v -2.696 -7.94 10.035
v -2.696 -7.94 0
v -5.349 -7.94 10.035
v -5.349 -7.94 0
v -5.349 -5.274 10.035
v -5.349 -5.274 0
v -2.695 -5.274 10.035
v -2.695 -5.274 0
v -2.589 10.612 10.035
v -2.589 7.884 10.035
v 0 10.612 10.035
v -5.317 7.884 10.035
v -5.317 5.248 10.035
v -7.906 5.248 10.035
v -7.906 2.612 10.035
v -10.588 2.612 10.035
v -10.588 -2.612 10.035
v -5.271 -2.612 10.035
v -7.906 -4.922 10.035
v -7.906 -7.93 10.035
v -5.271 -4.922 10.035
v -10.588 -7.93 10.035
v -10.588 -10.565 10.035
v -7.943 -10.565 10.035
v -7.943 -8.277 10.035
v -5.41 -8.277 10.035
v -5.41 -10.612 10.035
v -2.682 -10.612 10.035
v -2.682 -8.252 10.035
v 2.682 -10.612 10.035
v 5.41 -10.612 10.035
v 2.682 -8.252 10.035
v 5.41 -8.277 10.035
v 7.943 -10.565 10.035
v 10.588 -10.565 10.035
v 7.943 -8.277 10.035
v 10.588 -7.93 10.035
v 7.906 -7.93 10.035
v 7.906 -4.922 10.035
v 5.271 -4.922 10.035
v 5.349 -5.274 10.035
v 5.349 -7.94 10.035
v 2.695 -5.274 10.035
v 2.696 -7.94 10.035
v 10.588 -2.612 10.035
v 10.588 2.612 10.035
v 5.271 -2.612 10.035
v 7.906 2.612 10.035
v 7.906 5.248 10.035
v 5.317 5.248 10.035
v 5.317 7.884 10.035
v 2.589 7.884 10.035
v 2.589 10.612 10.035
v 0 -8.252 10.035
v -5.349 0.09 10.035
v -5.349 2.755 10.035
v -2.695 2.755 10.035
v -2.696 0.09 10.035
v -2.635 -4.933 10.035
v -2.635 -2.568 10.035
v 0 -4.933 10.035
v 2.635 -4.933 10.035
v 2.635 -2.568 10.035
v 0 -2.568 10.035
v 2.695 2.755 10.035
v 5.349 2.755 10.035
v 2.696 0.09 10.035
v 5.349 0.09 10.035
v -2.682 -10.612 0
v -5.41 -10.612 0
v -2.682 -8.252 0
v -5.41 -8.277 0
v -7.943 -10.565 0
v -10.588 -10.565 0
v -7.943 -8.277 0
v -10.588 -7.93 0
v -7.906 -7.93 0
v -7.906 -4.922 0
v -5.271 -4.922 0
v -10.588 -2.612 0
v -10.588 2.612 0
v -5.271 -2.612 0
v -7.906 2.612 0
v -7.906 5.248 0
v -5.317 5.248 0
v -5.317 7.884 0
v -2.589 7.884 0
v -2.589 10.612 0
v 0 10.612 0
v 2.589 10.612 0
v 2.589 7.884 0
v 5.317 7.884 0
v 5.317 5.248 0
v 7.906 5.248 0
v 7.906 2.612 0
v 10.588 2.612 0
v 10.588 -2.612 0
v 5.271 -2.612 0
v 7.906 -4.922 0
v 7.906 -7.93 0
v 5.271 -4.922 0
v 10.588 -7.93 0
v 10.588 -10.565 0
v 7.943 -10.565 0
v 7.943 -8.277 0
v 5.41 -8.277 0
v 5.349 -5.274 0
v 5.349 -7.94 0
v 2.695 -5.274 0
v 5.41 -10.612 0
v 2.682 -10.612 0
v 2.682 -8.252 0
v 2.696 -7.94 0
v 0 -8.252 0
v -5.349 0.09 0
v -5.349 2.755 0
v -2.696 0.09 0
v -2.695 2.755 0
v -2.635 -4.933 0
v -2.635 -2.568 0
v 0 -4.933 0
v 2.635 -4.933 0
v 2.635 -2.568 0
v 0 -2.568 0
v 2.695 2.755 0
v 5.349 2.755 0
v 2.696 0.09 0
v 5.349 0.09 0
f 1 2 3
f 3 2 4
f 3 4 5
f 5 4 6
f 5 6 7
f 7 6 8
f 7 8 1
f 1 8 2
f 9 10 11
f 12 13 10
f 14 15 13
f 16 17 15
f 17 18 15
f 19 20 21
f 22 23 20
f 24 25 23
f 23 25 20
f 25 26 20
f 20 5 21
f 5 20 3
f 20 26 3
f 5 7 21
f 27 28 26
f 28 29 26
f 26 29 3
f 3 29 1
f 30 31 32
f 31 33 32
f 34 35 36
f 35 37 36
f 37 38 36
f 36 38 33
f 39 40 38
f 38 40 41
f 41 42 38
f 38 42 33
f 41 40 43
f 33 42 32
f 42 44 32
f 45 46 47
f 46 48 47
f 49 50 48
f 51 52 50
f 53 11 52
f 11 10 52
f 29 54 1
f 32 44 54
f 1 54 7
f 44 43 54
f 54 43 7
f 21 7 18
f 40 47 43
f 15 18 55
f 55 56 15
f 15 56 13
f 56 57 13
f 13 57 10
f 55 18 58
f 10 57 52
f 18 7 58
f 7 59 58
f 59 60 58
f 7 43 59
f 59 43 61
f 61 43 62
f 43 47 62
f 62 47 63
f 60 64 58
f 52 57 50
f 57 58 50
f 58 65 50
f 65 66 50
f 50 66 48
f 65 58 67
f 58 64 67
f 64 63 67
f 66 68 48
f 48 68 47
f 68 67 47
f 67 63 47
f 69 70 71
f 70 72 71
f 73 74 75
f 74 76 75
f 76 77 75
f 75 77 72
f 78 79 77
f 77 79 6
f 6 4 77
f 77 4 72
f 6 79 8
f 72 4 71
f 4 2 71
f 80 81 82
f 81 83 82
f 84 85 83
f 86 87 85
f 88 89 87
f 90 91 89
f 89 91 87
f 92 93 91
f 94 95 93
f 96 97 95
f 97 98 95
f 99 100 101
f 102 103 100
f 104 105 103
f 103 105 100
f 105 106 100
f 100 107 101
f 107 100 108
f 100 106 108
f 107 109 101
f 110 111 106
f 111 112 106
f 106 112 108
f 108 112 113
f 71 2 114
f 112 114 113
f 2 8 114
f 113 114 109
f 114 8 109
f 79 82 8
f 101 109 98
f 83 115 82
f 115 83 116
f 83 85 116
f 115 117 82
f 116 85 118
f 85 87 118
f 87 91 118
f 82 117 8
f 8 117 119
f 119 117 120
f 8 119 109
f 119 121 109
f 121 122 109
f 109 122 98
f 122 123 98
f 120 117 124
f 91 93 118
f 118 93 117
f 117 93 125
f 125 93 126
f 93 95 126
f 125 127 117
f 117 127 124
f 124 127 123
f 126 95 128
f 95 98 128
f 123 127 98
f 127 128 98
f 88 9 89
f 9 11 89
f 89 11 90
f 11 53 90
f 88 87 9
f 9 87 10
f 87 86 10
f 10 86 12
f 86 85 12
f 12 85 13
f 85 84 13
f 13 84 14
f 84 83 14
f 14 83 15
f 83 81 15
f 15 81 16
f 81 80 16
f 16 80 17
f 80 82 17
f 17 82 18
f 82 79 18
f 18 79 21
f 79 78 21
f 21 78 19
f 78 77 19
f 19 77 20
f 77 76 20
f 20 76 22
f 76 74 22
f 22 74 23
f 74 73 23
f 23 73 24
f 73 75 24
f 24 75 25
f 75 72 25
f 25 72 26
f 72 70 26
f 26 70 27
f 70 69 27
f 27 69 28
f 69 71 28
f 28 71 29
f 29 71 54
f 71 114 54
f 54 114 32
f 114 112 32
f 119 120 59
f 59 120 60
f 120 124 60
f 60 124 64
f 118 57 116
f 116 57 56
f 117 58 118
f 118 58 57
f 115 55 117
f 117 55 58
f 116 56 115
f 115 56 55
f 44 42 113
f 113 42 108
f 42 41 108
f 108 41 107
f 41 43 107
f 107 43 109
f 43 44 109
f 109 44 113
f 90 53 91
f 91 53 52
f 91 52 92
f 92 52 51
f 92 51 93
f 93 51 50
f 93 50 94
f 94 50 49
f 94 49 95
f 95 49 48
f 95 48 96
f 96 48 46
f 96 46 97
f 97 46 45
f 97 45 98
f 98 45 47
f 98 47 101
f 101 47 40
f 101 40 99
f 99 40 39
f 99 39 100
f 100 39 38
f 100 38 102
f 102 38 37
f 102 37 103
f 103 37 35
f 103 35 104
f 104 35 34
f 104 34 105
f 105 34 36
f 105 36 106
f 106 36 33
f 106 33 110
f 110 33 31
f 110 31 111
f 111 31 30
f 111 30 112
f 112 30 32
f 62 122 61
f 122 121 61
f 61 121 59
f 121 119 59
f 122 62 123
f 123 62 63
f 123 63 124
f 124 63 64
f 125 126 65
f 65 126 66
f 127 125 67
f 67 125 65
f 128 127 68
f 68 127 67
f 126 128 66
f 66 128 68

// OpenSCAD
module invaders_v2_1b()
{
	polyhedron(
		points=[
			[-2.695971, -7.939871, 10.03545],
			[-2.695969, -7.939871, 1.037121e-05],
			[-5.348595, -7.939871, 10.03545],
			[-5.348595, -7.939871, 10.03545],
			[-2.695969, -7.939871, 1.037121e-05],
			[-5.348595, -7.939871, 1.037121e-05],
			[-5.348595, -7.939871, 10.03545],
			[-5.348595, -7.939871, 1.037121e-05],
			[-5.348595, -5.274351, 10.03545],
			[-5.348595, -5.274351, 10.03545],
			[-5.348595, -7.939871, 1.037121e-05],
			[-5.348595, -5.274351, 1.037121e-05],
			[-5.348595, -5.274351, 10.03545],
			[-5.348595, -5.274351, 1.037121e-05],
			[-2.694871, -5.274351, 10.03545],
			[-2.694871, -5.274351, 10.03545],
			[-5.348595, -5.274351, 1.037121e-05],
			[-2.694869, -5.274351, 6.661338e-16],
			[-2.694871, -5.274351, 10.03545],
			[-2.694869, -5.274351, 6.661338e-16],
			[-2.695971, -7.939871, 10.03545],
			[-2.695971, -7.939871, 10.03545],
			[-2.694869, -5.274351, 6.661338e-16],
			[-2.695969, -7.939871, 1.037121e-05],
			[-2.58908, 10.61154, 10.03545],
			[-2.58908, 7.883512, 10.03545],
			[-1.66893e-06, 10.61154, 10.03545],
			[-5.3171, 7.883512, 10.03545],
			[-5.3171, 5.247969, 10.03545],
			[-2.58908, 7.883512, 10.03545],
			[-7.906407, 5.247969, 10.03545],
			[-7.906407, 2.612425, 10.03545],
			[-5.3171, 5.247969, 10.03545],
			[-10.58819, 2.612425, 10.03545],
			[-10.58819, -2.612421, 10.03545],
			[-7.906407, 2.612425, 10.03545],
			[-10.58819, -2.612421, 10.03545],
			[-5.270863, -2.612421, 10.03545],
			[-7.906407, 2.612425, 10.03545],
			[-7.906407, -4.921896, 10.03545],
			[-7.906407, -7.929758, 10.03545],
			[-5.270863, -4.921896, 10.03545],
			[-10.58819, -7.929758, 10.03545],
			[-10.58819, -10.5653, 10.03545],
			[-7.906407, -7.929758, 10.03545],
			[-7.943222, -10.5653, 10.03545],
			[-7.943222, -8.276869, 10.03545],
			[-10.58819, -10.5653, 10.03545],
			[-10.58819, -10.5653, 10.03545],
			[-7.943222, -8.276869, 10.03545],
			[-7.906407, -7.929758, 10.03545],
			[-7.943222, -8.276869, 10.03545],
			[-5.409575, -8.276869, 10.03545],
			[-7.906407, -7.929758, 10.03545],
			[-7.906407, -7.929758, 10.03545],
			[-5.348595, -5.274351, 10.03545],
			[-5.270863, -4.921896, 10.03545],
			[-5.348595, -5.274351, 10.03545],
			[-7.906407, -7.929758, 10.03545],
			[-5.348595, -7.939871, 10.03545],
			[-7.906407, -7.929758, 10.03545],
			[-5.409575, -8.276869, 10.03545],
			[-5.348595, -7.939871, 10.03545],
			[-5.348595, -5.274351, 10.03545],
			[-2.694871, -5.274351, 10.03545],
			[-5.270863, -4.921896, 10.03545],
			[-5.409575, -10.61154, 10.03545],
			[-2.681557, -10.61154, 10.03545],
			[-5.409575, -8.276869, 10.03545],
			[-2.681557, -10.61154, 10.03545],
			[-2.681557, -8.251883, 10.03545],
			[-5.409575, -8.276869, 10.03545],
			[-5.409575, -8.276869, 10.03545],
			[-2.681557, -8.251883, 10.03545],
			[-5.348595, -7.939871, 10.03545],
			[-5.348595, -7.939871, 10.03545],
			[-2.681557, -8.251883, 10.03545],
			[-2.695971, -7.939871, 10.03545],
			[2.681553, -10.61154, 10.03545],
			[5.409574, -10.61154, 10.03546],
			[2.681553, -8.251883, 10.03545],
			[5.409574, -10.61154, 10.03546],
			[5.409574, -8.276869, 10.03546],
			[2.681553, -8.251883, 10.03545],
			[7.943221, -10.5653, 10.03546],
			[10.58819, -10.5653, 10.03546],
			[7.943221, -8.276869, 10.03546],
			[10.58819, -10.5653, 10.03546],
			[10.58819, -7.929758, 10.03546],
			[7.943221, -8.276869, 10.03546],
			[10.58819, -7.929758, 10.03546],
			[7.906405, -7.929758, 10.03546],
			[7.943221, -8.276869, 10.03546],
			[7.943221, -8.276869, 10.03546],
			[7.906405, -7.929758, 10.03546],
			[5.409574, -8.276869, 10.03546],
			[7.906405, -4.921896, 10.03546],
			[5.270862, -4.921896, 10.03546],
			[7.906405, -7.929758, 10.03546],
			[7.906405, -7.929758, 10.03546],
			[5.270862, -4.921896, 10.03546],
			[5.348594, -5.274351, 10.03546],
			[5.348594, -5.274351, 10.03546],
			[5.348594, -7.939871, 10.03546],
			[7.906405, -7.929758, 10.03546],
			[7.906405, -7.929758, 10.03546],
			[5.348594, -7.939871, 10.03546],
			[5.409574, -8.276869, 10.03546],
			[5.348594, -5.274351, 10.03546],
			[5.270862, -4.921896, 10.03546],
			[2.694868, -5.274351, 10.03545],
			[5.409574, -8.276869, 10.03546],
			[5.348594, -7.939871, 10.03546],
			[2.681553, -8.251883, 10.03545],
			[5.348594, -7.939871, 10.03546],
			[2.695968, -7.939871, 10.03545],
			[2.681553, -8.251883, 10.03545],
			[10.58819, -2.612421, 10.03546],
			[10.58819, 2.612425, 10.03546],
			[5.270862, -2.612421, 10.03546],
			[10.58819, 2.612425, 10.03546],
			[7.906405, 2.612425, 10.03546],
			[5.270862, -2.612421, 10.03546],
			[7.906405, 5.247969, 10.03546],
			[5.317099, 5.247969, 10.03546],
			[7.906405, 2.612425, 10.03546],
			[5.317099, 7.883512, 10.03546],
			[2.58908, 7.883512, 10.03545],
			[5.317099, 5.247969, 10.03546],
			[2.58908, 10.61154, 10.03545],
			[-1.66893e-06, 10.61154, 10.03545],
			[2.58908, 7.883512, 10.03545],
			[-1.66893e-06, 10.61154, 10.03545],
			[-2.58908, 7.883512, 10.03545],
			[2.58908, 7.883512, 10.03545],
			[-2.681557, -8.251883, 10.03545],
			[-1.66893e-06, -8.251883, 10.03545],
			[-2.695971, -7.939871, 10.03545],
			[2.681553, -8.251883, 10.03545],
			[2.695968, -7.939871, 10.03545],
			[-1.66893e-06, -8.251883, 10.03545],
			[-2.695971, -7.939871, 10.03545],
			[-1.66893e-06, -8.251883, 10.03545],
			[-2.694871, -5.274351, 10.03545],
			[2.695968, -7.939871, 10.03545],
			[2.694868, -5.274351, 10.03545],
			[-1.66893e-06, -8.251883, 10.03545],
			[-1.66893e-06, -8.251883, 10.03545],
			[2.694868, -5.274351, 10.03545],
			[-2.694871, -5.274351, 10.03545],
			[-5.270863, -4.921896, 10.03545],
			[-2.694871, -5.274351, 10.03545],
			[-5.270863, -2.612421, 10.03545],
			[5.270862, -4.921896, 10.03546],
			[5.270862, -2.612421, 10.03546],
			[2.694868, -5.274351, 10.03545],
			[-7.906407, 2.612425, 10.03545],
			[-5.270863, -2.612421, 10.03545],
			[-5.348595, 0.08991051, 10.03545],
			[-5.348595, 0.08991051, 10.03545],
			[-5.348595, 2.75543, 10.03545],
			[-7.906407, 2.612425, 10.03545],
			[-7.906407, 2.612425, 10.03545],
			[-5.348595, 2.75543, 10.03545],
			[-5.3171, 5.247969, 10.03545],
			[-5.348595, 2.75543, 10.03545],
			[-2.694871, 2.75543, 10.03545],
			[-5.3171, 5.247969, 10.03545],
			[-5.3171, 5.247969, 10.03545],
			[-2.694871, 2.75543, 10.03545],
			[-2.58908, 7.883512, 10.03545],
			[-5.348595, 0.08991051, 10.03545],
			[-5.270863, -2.612421, 10.03545],
			[-2.695971, 0.08991051, 10.03545],
			[-2.58908, 7.883512, 10.03545],
			[-2.694871, 2.75543, 10.03545],
			[2.58908, 7.883512, 10.03545],
			[-5.270863, -2.612421, 10.03545],
			[-2.694871, -5.274351, 10.03545],
			[-2.695971, 0.08991051, 10.03545],
			[-2.694871, -5.274351, 10.03545],
			[-2.63532, -4.932856, 10.03545],
			[-2.695971, 0.08991051, 10.03545],
			[-2.63532, -4.932856, 10.03545],
			[-2.63532, -2.56772, 10.03545],
			[-2.695971, 0.08991051, 10.03545],
			[-2.694871, -5.274351, 10.03545],
			[2.694868, -5.274351, 10.03545],
			[-2.63532, -4.932856, 10.03545],
			[-2.63532, -4.932856, 10.03545],
			[2.694868, -5.274351, 10.03545],
			[-1.66893e-06, -4.932856, 10.03545],
			[-1.66893e-06, -4.932856, 10.03545],
			[2.694868, -5.274351, 10.03545],
			[2.635317, -4.932856, 10.03545],
			[2.694868, -5.274351, 10.03545],
			[5.270862, -2.612421, 10.03546],
			[2.635317, -4.932856, 10.03545],
			[2.635317, -4.932856, 10.03545],
			[5.270862, -2.612421, 10.03546],
			[2.635317, -2.56772, 10.03545],
			[-2.63532, -2.56772, 10.03545],
			[-1.66893e-06, -2.56772, 10.03545],
			[-2.695971, 0.08991051, 10.03545],
			[2.58908, 7.883512, 10.03545],
			[-2.694871, 2.75543, 10.03545],
			[5.317099, 5.247969, 10.03546],
			[-2.694871, 2.75543, 10.03545],
			[-2.695971, 0.08991051, 10.03545],
			[5.317099, 5.247969, 10.03546],
			[-2.695971, 0.08991051, 10.03545],
			[2.694868, 2.75543, 10.03545],
			[5.317099, 5.247969, 10.03546],
			[2.694868, 2.75543, 10.03545],
			[5.348594, 2.75543, 10.03546],
			[5.317099, 5.247969, 10.03546],
			[5.317099, 5.247969, 10.03546],
			[5.348594, 2.75543, 10.03546],
			[7.906405, 2.612425, 10.03546],
			[2.694868, 2.75543, 10.03545],
			[-2.695971, 0.08991051, 10.03545],
			[2.695968, 0.08991051, 10.03545],
			[-2.695971, 0.08991051, 10.03545],
			[-1.66893e-06, -2.56772, 10.03545],
			[2.695968, 0.08991051, 10.03545],
			[-1.66893e-06, -2.56772, 10.03545],
			[2.635317, -2.56772, 10.03545],
			[2.695968, 0.08991051, 10.03545],
			[5.348594, 2.75543, 10.03546],
			[5.348594, 0.08991051, 10.03546],
			[7.906405, 2.612425, 10.03546],
			[7.906405, 2.612425, 10.03546],
			[5.348594, 0.08991051, 10.03546],
			[5.270862, -2.612421, 10.03546],
			[5.348594, 0.08991051, 10.03546],
			[2.695968, 0.08991051, 10.03545],
			[5.270862, -2.612421, 10.03546],
			[2.695968, 0.08991051, 10.03545],
			[2.635317, -2.56772, 10.03545],
			[5.270862, -2.612421, 10.03546],
			[-2.681555, -10.61154, 5.125999e-06],
			[-5.409575, -10.61154, 5.125999e-06],
			[-2.681555, -8.251883, 5.125999e-06],
			[-5.409575, -10.61154, 5.125999e-06],
			[-5.409575, -8.276869, 5.125999e-06],
			[-2.681555, -8.251883, 5.125999e-06],
			[-7.943222, -10.5653, 5.125999e-06],
			[-10.58819, -10.5653, 5.125999e-06],
			[-7.943222, -8.276869, 5.125999e-06],
			[-10.58819, -10.5653, 5.125999e-06],
			[-10.58819, -7.929758, 5.125999e-06],
			[-7.943222, -8.276869, 5.125999e-06],
			[-10.58819, -7.929758, 5.125999e-06],
			[-7.906407, -7.929758, 5.125999e-06],
			[-7.943222, -8.276869, 5.125999e-06],
			[-7.943222, -8.276869, 5.125999e-06],
			[-7.906407, -7.929758, 5.125999e-06],
			[-5.409575, -8.276869, 5.125999e-06],
			[-7.906407, -4.921896, 5.125999e-06],
			[-5.270863, -4.921896, 5.125999e-06],
			[-7.906407, -7.929758, 5.125999e-06],
			[-7.906407, -7.929758, 5.125999e-06],
			[-5.270863, -4.921896, 5.125999e-06],
			[-5.348595, -5.274351, 1.037121e-05],
			[-5.348595, -5.274351, 1.037121e-05],
			[-5.348595, -7.939871, 1.037121e-05],
			[-7.906407, -7.929758, 5.125999e-06],
			[-7.906407, -7.929758, 5.125999e-06],
			[-5.348595, -7.939871, 1.037121e-05],
			[-5.409575, -8.276869, 5.125999e-06],
			[-5.348595, -5.274351, 1.037121e-05],
			[-5.270863, -4.921896, 5.125999e-06],
			[-2.694869, -5.274351, 6.661338e-16],
			[-5.409575, -8.276869, 5.125999e-06],
			[-5.348595, -7.939871, 1.037121e-05],
			[-2.681555, -8.251883, 5.125999e-06],
			[-5.348595, -7.939871, 1.037121e-05],
			[-2.695969, -7.939871, 1.037121e-05],
			[-2.681555, -8.251883, 5.125999e-06],
			[-10.58819, -2.612421, 5.125999e-06],
			[-10.58819, 2.612425, 5.125999e-06],
			[-5.270863, -2.612421, 5.125999e-06],
			[-10.58819, 2.612425, 5.125999e-06],
			[-7.906407, 2.612425, 5.125999e-06],
			[-5.270863, -2.612421, 5.125999e-06],
			[-7.906407, 5.247969, 5.125999e-06],
			[-5.3171, 5.247969, 5.125999e-06],
			[-7.906407, 2.612425, 5.125999e-06],
			[-5.3171, 7.883512, 5.125999e-06],
			[-2.58908, 7.883512, 5.125999e-06],
			[-5.3171, 5.247969, 5.125999e-06],
			[-2.58908, 10.61154, 5.125999e-06],
			[-1.66893e-06, 10.61154, 5.125999e-06],
			[-2.58908, 7.883512, 5.125999e-06],
			[2.58908, 10.61154, 1.037121e-05],
			[2.58908, 7.883512, 1.037121e-05],
			[-1.66893e-06, 10.61154, 5.125999e-06],
			[-1.66893e-06, 10.61154, 5.125999e-06],
			[2.58908, 7.883512, 1.037121e-05],
			[-2.58908, 7.883512, 5.125999e-06],
			[5.317099, 7.883512, 1.037121e-05],
			[5.317099, 5.247969, 1.037121e-05],
			[2.58908, 7.883512, 1.037121e-05],
			[7.906405, 5.247969, 1.037121e-05],
			[7.906405, 2.612425, 1.037121e-05],
			[5.317099, 5.247969, 1.037121e-05],
			[10.58819, 2.612425, 1.037121e-05],
			[10.58819, -2.612421, 1.037121e-05],
			[7.906405, 2.612425, 1.037121e-05],
			[10.58819, -2.612421, 1.037121e-05],
			[5.270862, -2.612421, 1.037121e-05],
			[7.906405, 2.612425, 1.037121e-05],
			[7.906405, -4.921896, 1.037121e-05],
			[7.906405, -7.929758, 1.037121e-05],
			[5.270862, -4.921896, 1.037121e-05],
			[10.58819, -7.929758, 1.037121e-05],
			[10.58819, -10.5653, 1.037121e-05],
			[7.906405, -7.929758, 1.037121e-05],
			[7.943221, -10.5653, 1.037121e-05],
			[7.943221, -8.276869, 1.037121e-05],
			[10.58819, -10.5653, 1.037121e-05],
			[10.58819, -10.5653, 1.037121e-05],
			[7.943221, -8.276869, 1.037121e-05],
			[7.906405, -7.929758, 1.037121e-05],
			[7.943221, -8.276869, 1.037121e-05],
			[5.409574, -8.276869, 1.037121e-05],
			[7.906405, -7.929758, 1.037121e-05],
			[7.906405, -7.929758, 1.037121e-05],
			[5.348594, -5.274351, 1.549721e-05],
			[5.270862, -4.921896, 1.037121e-05],
			[5.348594, -5.274351, 1.549721e-05],
			[7.906405, -7.929758, 1.037121e-05],
			[5.348594, -7.939871, 1.549721e-05],
			[7.906405, -7.929758, 1.037121e-05],
			[5.409574, -8.276869, 1.037121e-05],
			[5.348594, -7.939871, 1.549721e-05],
			[5.348594, -5.274351, 1.549721e-05],
			[2.694868, -5.274351, 6.661338e-16],
			[5.270862, -4.921896, 1.037121e-05],
			[5.409574, -10.61154, 1.037121e-05],
			[2.681553, -10.61154, 1.037121e-05],
			[5.409574, -8.276869, 1.037121e-05],
			[2.681553, -10.61154, 1.037121e-05],
			[2.681553, -8.251883, 1.037121e-05],
			[5.409574, -8.276869, 1.037121e-05],
			[5.409574, -8.276869, 1.037121e-05],
			[2.681553, -8.251883, 1.037121e-05],
			[5.348594, -7.939871, 1.549721e-05],
			[5.348594, -7.939871, 1.549721e-05],
			[2.681553, -8.251883, 1.037121e-05],
			[2.695968, -7.939871, 1.037121e-05],
			[-2.681555, -8.251883, 5.125999e-06],
			[-2.695969, -7.939871, 1.037121e-05],
			[-1.66893e-06, -8.251883, 5.125999e-06],
			[2.681553, -8.251883, 1.037121e-05],
			[-1.66893e-06, -8.251883, 5.125999e-06],
			[2.695968, -7.939871, 1.037121e-05],
			[-2.695969, -7.939871, 1.037121e-05],
			[-2.694869, -5.274351, 6.661338e-16],
			[-1.66893e-06, -8.251883, 5.125999e-06],
			[2.695968, -7.939871, 1.037121e-05],
			[-1.66893e-06, -8.251883, 5.125999e-06],
			[2.694868, -5.274351, 6.661338e-16],
			[-1.66893e-06, -8.251883, 5.125999e-06],
			[-2.694869, -5.274351, 6.661338e-16],
			[2.694868, -5.274351, 6.661338e-16],
			[-5.270863, -4.921896, 5.125999e-06],
			[-5.270863, -2.612421, 5.125999e-06],
			[-2.694869, -5.274351, 6.661338e-16],
			[5.270862, -4.921896, 1.037121e-05],
			[2.694868, -5.274351, 6.661338e-16],
			[5.270862, -2.612421, 1.037121e-05],
			[-7.906407, 2.612425, 5.125999e-06],
			[-5.348595, 0.08991051, 1.037121e-05],
			[-5.270863, -2.612421, 5.125999e-06],
			[-5.348595, 0.08991051, 1.037121e-05],
			[-7.906407, 2.612425, 5.125999e-06],
			[-5.348595, 2.75543, 1.037121e-05],
			[-7.906407, 2.612425, 5.125999e-06],
			[-5.3171, 5.247969, 5.125999e-06],
			[-5.348595, 2.75543, 1.037121e-05],
			[-5.348595, 0.08991051, 1.037121e-05],
			[-2.695969, 0.08991051, 1.037121e-05],
			[-5.270863, -2.612421, 5.125999e-06],
			[-5.348595, 2.75543, 1.037121e-05],
			[-5.3171, 5.247969, 5.125999e-06],
			[-2.694869, 2.75543, 0.0],
			[-5.3171, 5.247969, 5.125999e-06],
			[-2.58908, 7.883512, 5.125999e-06],
			[-2.694869, 2.75543, 0.0],
			[-2.58908, 7.883512, 5.125999e-06],
			[2.58908, 7.883512, 1.037121e-05],
			[-2.694869, 2.75543, 0.0],
			[-5.270863, -2.612421, 5.125999e-06],
			[-2.695969, 0.08991051, 1.037121e-05],
			[-2.694869, -5.274351, 6.661338e-16],
			[-2.694869, -5.274351, 6.661338e-16],
			[-2.695969, 0.08991051, 1.037121e-05],
			[-2.635319, -4.932856, 5.125999e-06],
			[-2.635319, -4.932856, 5.125999e-06],
			[-2.695969, 0.08991051, 1.037121e-05],
			[-2.635319, -2.56772, 5.125999e-06],
			[-2.694869, -5.274351, 6.661338e-16],
			[-2.635319, -4.932856, 5.125999e-06],
			[2.694868, -5.274351, 6.661338e-16],
			[-2.635319, -4.932856, 5.125999e-06],
			[-1.66893e-06, -4.932856, 5.125999e-06],
			[2.694868, -5.274351, 6.661338e-16],
			[-1.66893e-06, -4.932856, 5.125999e-06],
			[2.635317, -4.932856, 1.037121e-05],
			[2.694868, -5.274351, 6.661338e-16],
			[2.694868, -5.274351, 6.661338e-16],
			[2.635317, -4.932856, 1.037121e-05],
			[5.270862, -2.612421, 1.037121e-05],
			[2.635317, -4.932856, 1.037121e-05],
			[2.635317, -2.56772, 1.037121e-05],
			[5.270862, -2.612421, 1.037121e-05],
			[-2.635319, -2.56772, 5.125999e-06],
			[-2.695969, 0.08991051, 1.037121e-05],
			[-1.66893e-06, -2.56772, 5.125999e-06],
			[2.58908, 7.883512, 1.037121e-05],
			[5.317099, 5.247969, 1.037121e-05],
			[-2.694869, 2.75543, 0.0],
			[-2.694869, 2.75543, 0.0],
			[5.317099, 5.247969, 1.037121e-05],
			[-2.695969, 0.08991051, 1.037121e-05],
			[-2.695969, 0.08991051, 1.037121e-05],
			[5.317099, 5.247969, 1.037121e-05],
			[2.694868, 2.75543, 0.0],
			[2.694868, 2.75543, 0.0],
			[5.317099, 5.247969, 1.037121e-05],
			[5.348594, 2.75543, 1.549721e-05],
			[5.317099, 5.247969, 1.037121e-05],
			[7.906405, 2.612425, 1.037121e-05],
			[5.348594, 2.75543, 1.549721e-05],
			[2.694868, 2.75543, 0.0],
			[2.695968, 0.08991051, 1.037121e-05],
			[-2.695969, 0.08991051, 1.037121e-05],
			[-2.695969, 0.08991051, 1.037121e-05],
			[2.695968, 0.08991051, 1.037121e-05],
			[-1.66893e-06, -2.56772, 5.125999e-06],
			[-1.66893e-06, -2.56772, 5.125999e-06],
			[2.695968, 0.08991051, 1.037121e-05],
			[2.635317, -2.56772, 1.037121e-05],
			[5.348594, 2.75543, 1.549721e-05],
			[7.906405, 2.612425, 1.037121e-05],
			[5.348594, 0.08991051, 1.549721e-05],
			[7.906405, 2.612425, 1.037121e-05],
			[5.270862, -2.612421, 1.037121e-05],
			[5.348594, 0.08991051, 1.549721e-05],
			[2.635317, -2.56772, 1.037121e-05],
			[2.695968, 0.08991051, 1.037121e-05],
			[5.270862, -2.612421, 1.037121e-05],
			[2.695968, 0.08991051, 1.037121e-05],
			[5.348594, 0.08991051, 1.549721e-05],
			[5.270862, -2.612421, 1.037121e-05],
			[-2.58908, 10.61154, 5.125999e-06],
			[-2.58908, 10.61154, 10.03545],
			[-1.66893e-06, 10.61154, 5.125999e-06],
			[-2.58908, 10.61154, 10.03545],
			[-1.66893e-06, 10.61154, 10.03545],
			[-1.66893e-06, 10.61154, 5.125999e-06],
			[-1.66893e-06, 10.61154, 5.125999e-06],
			[-1.66893e-06, 10.61154, 10.03545],
			[2.58908, 10.61154, 1.037121e-05],
			[-1.66893e-06, 10.61154, 10.03545],
			[2.58908, 10.61154, 10.03545],
			[2.58908, 10.61154, 1.037121e-05],
			[-2.58908, 10.61154, 5.125999e-06],
			[-2.58908, 7.883512, 5.125999e-06],
			[-2.58908, 10.61154, 10.03545],
			[-2.58908, 10.61154, 10.03545],
			[-2.58908, 7.883512, 5.125999e-06],
			[-2.58908, 7.883512, 10.03545],
			[-2.58908, 7.883512, 5.125999e-06],
			[-5.3171, 7.883512, 5.125999e-06],
			[-2.58908, 7.883512, 10.03545],
			[-2.58908, 7.883512, 10.03545],
			[-5.3171, 7.883512, 5.125999e-06],
			[-5.3171, 7.883512, 10.03545],
			[-5.3171, 7.883512, 5.125999e-06],
			[-5.3171, 5.247969, 5.125999e-06],
			[-5.3171, 7.883512, 10.03545],
			[-5.3171, 7.883512, 10.03545],
			[-5.3171, 5.247969, 5.125999e-06],
			[-5.3171, 5.247969, 10.03545],
			[-5.3171, 5.247969, 5.125999e-06],
			[-7.906407, 5.247969, 5.125999e-06],
			[-5.3171, 5.247969, 10.03545],
			[-5.3171, 5.247969, 10.03545],
			[-7.906407, 5.247969, 5.125999e-06],
			[-7.906407, 5.247969, 10.03545],
			[-7.906407, 5.247969, 5.125999e-06],
			[-7.906407, 2.612425, 5.125999e-06],
			[-7.906407, 5.247969, 10.03545],
			[-7.906407, 5.247969, 10.03545],
			[-7.906407, 2.612425, 5.125999e-06],
			[-7.906407, 2.612425, 10.03545],
			[-7.906407, 2.612425, 5.125999e-06],
			[-10.58819, 2.612425, 5.125999e-06],
			[-7.906407, 2.612425, 10.03545],
			[-7.906407, 2.612425, 10.03545],
			[-10.58819, 2.612425, 5.125999e-06],
			[-10.58819, 2.612425, 10.03545],
			[-10.58819, 2.612425, 5.125999e-06],
			[-10.58819, -2.612421, 5.125999e-06],
			[-10.58819, 2.612425, 10.03545],
			[-10.58819, 2.612425, 10.03545],
			[-10.58819, -2.612421, 5.125999e-06],
			[-10.58819, -2.612421, 10.03545],
			[-10.58819, -2.612421, 5.125999e-06],
			[-5.270863, -2.612421, 5.125999e-06],
			[-10.58819, -2.612421, 10.03545],
			[-10.58819, -2.612421, 10.03545],
			[-5.270863, -2.612421, 5.125999e-06],
			[-5.270863, -2.612421, 10.03545],
			[-5.270863, -2.612421, 5.125999e-06],
			[-5.270863, -4.921896, 5.125999e-06],
			[-5.270863, -2.612421, 10.03545],
			[-5.270863, -2.612421, 10.03545],
			[-5.270863, -4.921896, 5.125999e-06],
			[-5.270863, -4.921896, 10.03545],
			[-5.270863, -4.921896, 5.125999e-06],
			[-7.906407, -4.921896, 5.125999e-06],
			[-5.270863, -4.921896, 10.03545],
			[-5.270863, -4.921896, 10.03545],
			[-7.906407, -4.921896, 5.125999e-06],
			[-7.906407, -4.921896, 10.03545],
			[-7.906407, -4.921896, 5.125999e-06],
			[-7.906407, -7.929758, 5.125999e-06],
			[-7.906407, -4.921896, 10.03545],
			[-7.906407, -4.921896, 10.03545],
			[-7.906407, -7.929758, 5.125999e-06],
			[-7.906407, -7.929758, 10.03545],
			[-7.906407, -7.929758, 5.125999e-06],
			[-10.58819, -7.929758, 5.125999e-06],
			[-7.906407, -7.929758, 10.03545],
			[-7.906407, -7.929758, 10.03545],
			[-10.58819, -7.929758, 5.125999e-06],
			[-10.58819, -7.929758, 10.03545],
			[-10.58819, -7.929758, 5.125999e-06],
			[-10.58819, -10.5653, 5.125999e-06],
			[-10.58819, -7.929758, 10.03545],
			[-10.58819, -7.929758, 10.03545],
			[-10.58819, -10.5653, 5.125999e-06],
			[-10.58819, -10.5653, 10.03545],
			[-10.58819, -10.5653, 5.125999e-06],
			[-7.943222, -10.5653, 5.125999e-06],
			[-10.58819, -10.5653, 10.03545],
			[-10.58819, -10.5653, 10.03545],
			[-7.943222, -10.5653, 5.125999e-06],
			[-7.943222, -10.5653, 10.03545],
			[-7.943222, -10.5653, 5.125999e-06],
			[-7.943222, -8.276869, 5.125999e-06],
			[-7.943222, -10.5653, 10.03545],
			[-7.943222, -10.5653, 10.03545],
			[-7.943222, -8.276869, 5.125999e-06],
			[-7.943222, -8.276869, 10.03545],
			[-7.943222, -8.276869, 5.125999e-06],
			[-5.409575, -8.276869, 5.125999e-06],
			[-7.943222, -8.276869, 10.03545],
			[-7.943222, -8.276869, 10.03545],
			[-5.409575, -8.276869, 5.125999e-06],
			[-5.409575, -8.276869, 10.03545],
			[-5.409575, -8.276869, 5.125999e-06],
			[-5.409575, -10.61154, 5.125999e-06],
			[-5.409575, -8.276869, 10.03545],
			[-5.409575, -8.276869, 10.03545],
			[-5.409575, -10.61154, 5.125999e-06],
			[-5.409575, -10.61154, 10.03545],
			[-5.409575, -10.61154, 5.125999e-06],
			[-2.681555, -10.61154, 5.125999e-06],
			[-5.409575, -10.61154, 10.03545],
			[-5.409575, -10.61154, 10.03545],
			[-2.681555, -10.61154, 5.125999e-06],
			[-2.681557, -10.61154, 10.03545],
			[-2.681555, -10.61154, 5.125999e-06],
			[-2.681555, -8.251883, 5.125999e-06],
			[-2.681557, -10.61154, 10.03545],
			[-2.681557, -10.61154, 10.03545],
			[-2.681555, -8.251883, 5.125999e-06],
			[-2.681557, -8.251883, 10.03545],
			[-2.681557, -8.251883, 10.03545],
			[-2.681555, -8.251883, 5.125999e-06],
			[-1.66893e-06, -8.251883, 10.03545],
			[-2.681555, -8.251883, 5.125999e-06],
			[-1.66893e-06, -8.251883, 5.125999e-06],
			[-1.66893e-06, -8.251883, 10.03545],
			[-1.66893e-06, -8.251883, 10.03545],
			[-1.66893e-06, -8.251883, 5.125999e-06],
			[2.681553, -8.251883, 10.03545],
			[-1.66893e-06, -8.251883, 5.125999e-06],
			[2.681553, -8.251883, 1.037121e-05],
			[2.681553, -8.251883, 10.03545],
			[-2.635319, -4.932856, 5.125999e-06],
			[-2.635319, -2.56772, 5.125999e-06],
			[-2.63532, -4.932856, 10.03545],
			[-2.63532, -4.932856, 10.03545],
			[-2.635319, -2.56772, 5.125999e-06],
			[-2.63532, -2.56772, 10.03545],
			[-2.635319, -2.56772, 5.125999e-06],
			[-1.66893e-06, -2.56772, 5.125999e-06],
			[-2.63532, -2.56772, 10.03545],
			[-2.63532, -2.56772, 10.03545],
			[-1.66893e-06, -2.56772, 5.125999e-06],
			[-1.66893e-06, -2.56772, 10.03545],
			[-2.694869, 2.75543, 0.0],
			[-2.694871, 2.75543, 10.03545],
			[-5.348595, 2.75543, 1.037121e-05],
			[-5.348595, 2.75543, 1.037121e-05],
			[-2.694871, 2.75543, 10.03545],
			[-5.348595, 2.75543, 10.03545],
			[-2.695969, 0.08991051, 1.037121e-05],
			[-2.695971, 0.08991051, 10.03545],
			[-2.694869, 2.75543, 0.0],
			[-2.694869, 2.75543, 0.0],
			[-2.695971, 0.08991051, 10.03545],
			[-2.694871, 2.75543, 10.03545],
			[-5.348595, 0.08991051, 1.037121e-05],
			[-5.348595, 0.08991051, 10.03545],
			[-2.695969, 0.08991051, 1.037121e-05],
			[-2.695969, 0.08991051, 1.037121e-05],
			[-5.348595, 0.08991051, 10.03545],
			[-2.695971, 0.08991051, 10.03545],
			[-5.348595, 2.75543, 1.037121e-05],
			[-5.348595, 2.75543, 10.03545],
			[-5.348595, 0.08991051, 1.037121e-05],
			[-5.348595, 0.08991051, 1.037121e-05],
			[-5.348595, 2.75543, 10.03545],
			[-5.348595, 0.08991051, 10.03545],
			[2.695968, -7.939871, 10.03545],
			[5.348594, -7.939871, 10.03546],
			[2.695968, -7.939871, 1.037121e-05],
			[2.695968, -7.939871, 1.037121e-05],
			[5.348594, -7.939871, 10.03546],
			[5.348594, -7.939871, 1.549721e-05],
			[5.348594, -7.939871, 10.03546],
			[5.348594, -5.274351, 10.03546],
			[5.348594, -7.939871, 1.549721e-05],
			[5.348594, -7.939871, 1.549721e-05],
			[5.348594, -5.274351, 10.03546],
			[5.348594, -5.274351, 1.549721e-05],
			[5.348594, -5.274351, 10.03546],
			[2.694868, -5.274351, 10.03545],
			[5.348594, -5.274351, 1.549721e-05],
			[5.348594, -5.274351, 1.549721e-05],
			[2.694868, -5.274351, 10.03545],
			[2.694868, -5.274351, 6.661338e-16],
			[2.694868, -5.274351, 10.03545],
			[2.695968, -7.939871, 10.03545],
			[2.694868, -5.274351, 6.661338e-16],
			[2.694868, -5.274351, 6.661338e-16],
			[2.695968, -7.939871, 10.03545],
			[2.695968, -7.939871, 1.037121e-05],
			[2.58908, 10.61154, 1.037121e-05],
			[2.58908, 10.61154, 10.03545],
			[2.58908, 7.883512, 1.037121e-05],
			[2.58908, 7.883512, 1.037121e-05],
			[2.58908, 10.61154, 10.03545],
			[2.58908, 7.883512, 10.03545],
			[2.58908, 7.883512, 1.037121e-05],
			[2.58908, 7.883512, 10.03545],
			[5.317099, 7.883512, 1.037121e-05],
			[5.317099, 7.883512, 1.037121e-05],
			[2.58908, 7.883512, 10.03545],
			[5.317099, 7.883512, 10.03546],
			[5.317099, 7.883512, 1.037121e-05],
			[5.317099, 7.883512, 10.03546],
			[5.317099, 5.247969, 1.037121e-05],
			[5.317099, 5.247969, 1.037121e-05],
			[5.317099, 7.883512, 10.03546],
			[5.317099, 5.247969, 10.03546],
			[5.317099, 5.247969, 1.037121e-05],
			[5.317099, 5.247969, 10.03546],
			[7.906405, 5.247969, 1.037121e-05],
			[7.906405, 5.247969, 1.037121e-05],
			[5.317099, 5.247969, 10.03546],
			[7.906405, 5.247969, 10.03546],
			[7.906405, 5.247969, 1.037121e-05],
			[7.906405, 5.247969, 10.03546],
			[7.906405, 2.612425, 1.037121e-05],
			[7.906405, 2.612425, 1.037121e-05],
			[7.906405, 5.247969, 10.03546],
			[7.906405, 2.612425, 10.03546],
			[7.906405, 2.612425, 1.037121e-05],
			[7.906405, 2.612425, 10.03546],
			[10.58819, 2.612425, 1.037121e-05],
			[10.58819, 2.612425, 1.037121e-05],
			[7.906405, 2.612425, 10.03546],
			[10.58819, 2.612425, 10.03546],
			[10.58819, 2.612425, 1.037121e-05],
			[10.58819, 2.612425, 10.03546],
			[10.58819, -2.612421, 1.037121e-05],
			[10.58819, -2.612421, 1.037121e-05],
			[10.58819, 2.612425, 10.03546],
			[10.58819, -2.612421, 10.03546],
			[10.58819, -2.612421, 1.037121e-05],
			[10.58819, -2.612421, 10.03546],
			[5.270862, -2.612421, 1.037121e-05],
			[5.270862, -2.612421, 1.037121e-05],
			[10.58819, -2.612421, 10.03546],
			[5.270862, -2.612421, 10.03546],
			[5.270862, -2.612421, 1.037121e-05],
			[5.270862, -2.612421, 10.03546],
			[5.270862, -4.921896, 1.037121e-05],
			[5.270862, -4.921896, 1.037121e-05],
			[5.270862, -2.612421, 10.03546],
			[5.270862, -4.921896, 10.03546],
			[5.270862, -4.921896, 1.037121e-05],
			[5.270862, -4.921896, 10.03546],
			[7.906405, -4.921896, 1.037121e-05],
			[7.906405, -4.921896, 1.037121e-05],
			[5.270862, -4.921896, 10.03546],
			[7.906405, -4.921896, 10.03546],
			[7.906405, -4.921896, 1.037121e-05],
			[7.906405, -4.921896, 10.03546],
			[7.906405, -7.929758, 1.037121e-05],
			[7.906405, -7.929758, 1.037121e-05],
			[7.906405, -4.921896, 10.03546],
			[7.906405, -7.929758, 10.03546],
			[7.906405, -7.929758, 1.037121e-05],
			[7.906405, -7.929758, 10.03546],
			[10.58819, -7.929758, 1.037121e-05],
			[10.58819, -7.929758, 1.037121e-05],
			[7.906405, -7.929758, 10.03546],
			[10.58819, -7.929758, 10.03546],
			[10.58819, -7.929758, 1.037121e-05],
			[10.58819, -7.929758, 10.03546],
			[10.58819, -10.5653, 1.037121e-05],
			[10.58819, -10.5653, 1.037121e-05],
			[10.58819, -7.929758, 10.03546],
			[10.58819, -10.5653, 10.03546],
			[10.58819, -10.5653, 1.037121e-05],
			[10.58819, -10.5653, 10.03546],
			[7.943221, -10.5653, 1.037121e-05],
			[7.943221, -10.5653, 1.037121e-05],
			[10.58819, -10.5653, 10.03546],
			[7.943221, -10.5653, 10.03546],
			[7.943221, -10.5653, 1.037121e-05],
			[7.943221, -10.5653, 10.03546],
			[7.943221, -8.276869, 1.037121e-05],
			[7.943221, -8.276869, 1.037121e-05],
			[7.943221, -10.5653, 10.03546],
			[7.943221, -8.276869, 10.03546],
			[7.943221, -8.276869, 1.037121e-05],
			[7.943221, -8.276869, 10.03546],
			[5.409574, -8.276869, 1.037121e-05],
			[5.409574, -8.276869, 1.037121e-05],
			[7.943221, -8.276869, 10.03546],
			[5.409574, -8.276869, 10.03546],
			[5.409574, -8.276869, 1.037121e-05],
			[5.409574, -8.276869, 10.03546],
			[5.409574, -10.61154, 1.037121e-05],
			[5.409574, -10.61154, 1.037121e-05],
			[5.409574, -8.276869, 10.03546],
			[5.409574, -10.61154, 10.03546],
			[5.409574, -10.61154, 1.037121e-05],
			[5.409574, -10.61154, 10.03546],
			[2.681553, -10.61154, 1.037121e-05],
			[2.681553, -10.61154, 1.037121e-05],
			[5.409574, -10.61154, 10.03546],
			[2.681553, -10.61154, 10.03545],
			[2.681553, -10.61154, 1.037121e-05],
			[2.681553, -10.61154, 10.03545],
			[2.681553, -8.251883, 1.037121e-05],
			[2.681553, -8.251883, 1.037121e-05],
			[2.681553, -10.61154, 10.03545],
			[2.681553, -8.251883, 10.03545],
			[2.635317, -4.932856, 10.03545],
			[2.635317, -4.932856, 1.037121e-05],
			[-1.66893e-06, -4.932856, 10.03545],
			[2.635317, -4.932856, 1.037121e-05],
			[-1.66893e-06, -4.932856, 5.125999e-06],
			[-1.66893e-06, -4.932856, 10.03545],
			[-1.66893e-06, -4.932856, 10.03545],
			[-1.66893e-06, -4.932856, 5.125999e-06],
			[-2.63532, -4.932856, 10.03545],
			[-1.66893e-06, -4.932856, 5.125999e-06],
			[-2.635319, -4.932856, 5.125999e-06],
			[-2.63532, -4.932856, 10.03545],
			[2.635317, -4.932856, 1.037121e-05],
			[2.635317, -4.932856, 10.03545],
			[2.635317, -2.56772, 1.037121e-05],
			[2.635317, -2.56772, 1.037121e-05],
			[2.635317, -4.932856, 10.03545],
			[2.635317, -2.56772, 10.03545],
			[2.635317, -2.56772, 1.037121e-05],
			[2.635317, -2.56772, 10.03545],
			[-1.66893e-06, -2.56772, 5.125999e-06],
			[-1.66893e-06, -2.56772, 5.125999e-06],
			[2.635317, -2.56772, 10.03545],
			[-1.66893e-06, -2.56772, 10.03545],
			[2.694868, 2.75543, 0.0],
			[5.348594, 2.75543, 1.549721e-05],
			[2.694868, 2.75543, 10.03545],
			[2.694868, 2.75543, 10.03545],
			[5.348594, 2.75543, 1.549721e-05],
			[5.348594, 2.75543, 10.03546],
			[2.695968, 0.08991051, 1.037121e-05],
			[2.694868, 2.75543, 0.0],
			[2.695968, 0.08991051, 10.03545],
			[2.695968, 0.08991051, 10.03545],
			[2.694868, 2.75543, 0.0],
			[2.694868, 2.75543, 10.03545],
			[5.348594, 0.08991051, 1.549721e-05],
			[2.695968, 0.08991051, 1.037121e-05],
			[5.348594, 0.08991051, 10.03546],
			[5.348594, 0.08991051, 10.03546],
			[2.695968, 0.08991051, 1.037121e-05],
			[2.695968, 0.08991051, 10.03545],
			[5.348594, 2.75543, 1.549721e-05],
			[5.348594, 0.08991051, 1.549721e-05],
			[5.348594, 2.75543, 10.03546],
			[5.348594, 2.75543, 10.03546],
			[5.348594, 0.08991051, 1.549721e-05],
			[5.348594, 0.08991051, 10.03546]
		],
		faces=[
			[0, 1, 2],
			[3, 4, 5],
			[6, 7, 8],
			[9, 10, 11],
			[12, 13, 14],
			[15, 16, 17],
			[18, 19, 20],
			[21, 22, 23],
			[24, 25, 26],
			[27, 28, 29],
			[30, 31, 32],
			[33, 34, 35],
			[36, 37, 38],
			[39, 40, 41],
			[42, 43, 44],
			[45, 46, 47],
			[48, 49, 50],
			[51, 52, 53],
			[54, 55, 56],
			[57, 58, 59],
			[60, 61, 62],
			[63, 64, 65],
			[66, 67, 68],
			[69, 70, 71],
			[72, 73, 74],
			[75, 76, 77],
			[78, 79, 80],
			[81, 82, 83],
			[84, 85, 86],
			[87, 88, 89],
			[90, 91, 92],
			[93, 94, 95],
			[96, 97, 98],
			[99, 100, 101],
			[102, 103, 104],
			[105, 106, 107],
			[108, 109, 110],
			[111, 112, 113],
			[114, 115, 116],
			[117, 118, 119],
			[120, 121, 122],
			[123, 124, 125],
			[126, 127, 128],
			[129, 130, 131],
			[132, 133, 134],
			[135, 136, 137],
			[138, 139, 140],
			[141, 142, 143],
			[144, 145, 146],
			[147, 148, 149],
			[150, 151, 152],
			[153, 154, 155],
			[156, 157, 158],
			[159, 160, 161],
			[162, 163, 164],
			[165, 166, 167],
			[168, 169, 170],
			[171, 172, 173],
			[174, 175, 176],
			[177, 178, 179],
			[180, 181, 182],
			[183, 184, 185],
			[186, 187, 188],
			[189, 190, 191],
			[192, 193, 194],
			[195, 196, 197],
			[198, 199, 200],
			[201, 202, 203],
			[204, 205, 206],
			[207, 208, 209],
			[210, 211, 212],
			[213, 214, 215],
			[216, 217, 218],
			[219, 220, 221],
			[222, 223, 224],
			[225, 226, 227],
			[228, 229, 230],
			[231, 232, 233],
			[234, 235, 236],
			[237, 238, 239],
			[240, 241, 242],
			[243, 244, 245],
			[246, 247, 248],
			[249, 250, 251],
			[252, 253, 254],
			[255, 256, 257],
			[258, 259, 260],
			[261, 262, 263],
			[264, 265, 266],
			[267, 268, 269],
			[270, 271, 272],
			[273, 274, 275],
			[276, 277, 278],
			[279, 280, 281],
			[282, 283, 284],
			[285, 286, 287],
			[288, 289, 290],
			[291, 292, 293],
			[294, 295, 296],
			[297, 298, 299],
			[300, 301, 302],
			[303, 304, 305],
			[306, 307, 308],
			[309, 310, 311],
			[312, 313, 314],
			[315, 316, 317],
			[318, 319, 320],
			[321, 322, 323],
			[324, 325, 326],
			[327, 328, 329],
			[330, 331, 332],
			[333, 334, 335],
			[336, 337, 338],
			[339, 340, 341],
			[342, 343, 344],
			[345, 346, 347],
			[348, 349, 350],
			[351, 352, 353],
			[354, 355, 356],
			[357, 358, 359],
			[360, 361, 362],
			[363, 364, 365],
			[366, 367, 368],
			[369, 370, 371],
			[372, 373, 374],
			[375, 376, 377],
			[378, 379, 380],
			[381, 382, 383],
			[384, 385, 386],
			[387, 388, 389],
			[390, 391, 392],
			[393, 394, 395],
			[396, 397, 398],
			[399, 400, 401],
			[402, 403, 404],
			[405, 406, 407],
			[408, 409, 410],
			[411, 412, 413],
			[414, 415, 416],
			[417, 418, 419],
			[420, 421, 422],
			[423, 424, 425],
			[426, 427, 428],
			[429, 430, 431],
			[432, 433, 434],
			[435, 436, 437],
			[438, 439, 440],
			[441, 442, 443],
			[444, 445, 446],
			[447, 448, 449],
			[450, 451, 452],
			[453, 454, 455],
			[456, 457, 458],
			[459, 460, 461],
			[462, 463, 464],
			[465, 466, 467],
			[468, 469, 470],
			[471, 472, 473],
			[474, 475, 476],
			[477, 478, 479],
			[480, 481, 482],
			[483, 484, 485],
			[486, 487, 488],
			[489, 490, 491],
			[492, 493, 494],
			[495, 496, 497],
			[498, 499, 500],
			[501, 502, 503],
			[504, 505, 506],
			[507, 508, 509],
			[510, 511, 512],
			[513, 514, 515],
			[516, 517, 518],
			[519, 520, 521],
			[522, 523, 524],
			[525, 526, 527],
			[528, 529, 530],
			[531, 532, 533],
			[534, 535, 536],
			[537, 538, 539],
			[540, 541, 542],
			[543, 544, 545],
			[546, 547, 548],
			[549, 550, 551],
			[552, 553, 554],
			[555, 556, 557],
			[558, 559, 560],
			[561, 562, 563],
			[564, 565, 566],
			[567, 568, 569],
			[570, 571, 572],
			[573, 574, 575],
			[576, 577, 578],
			[579, 580, 581],
			[582, 583, 584],
			[585, 586, 587],
			[588, 589, 590],
			[591, 592, 593],
			[594, 595, 596],
			[597, 598, 599],
			[600, 601, 602],
			[603, 604, 605],
			[606, 607, 608],
			[609, 610, 611],
			[612, 613, 614],
			[615, 616, 617],
			[618, 619, 620],
			[621, 622, 623],
			[624, 625, 626],
			[627, 628, 629],
			[630, 631, 632],
			[633, 634, 635],
			[636, 637, 638],
			[639, 640, 641],
			[642, 643, 644],
			[645, 646, 647],
			[648, 649, 650],
			[651, 652, 653],
			[654, 655, 656],
			[657, 658, 659],
			[660, 661, 662],
			[663, 664, 665],
			[666, 667, 668],
			[669, 670, 671],
			[672, 673, 674],
			[675, 676, 677],
			[678, 679, 680],
			[681, 682, 683],
			[684, 685, 686],
			[687, 688, 689],
			[690, 691, 692],
			[693, 694, 695],
			[696, 697, 698],
			[699, 700, 701],
			[702, 703, 704],
			[705, 706, 707],
			[708, 709, 710],
			[711, 712, 713],
			[714, 715, 716],
			[717, 718, 719],
			[720, 721, 722],
			[723, 724, 725],
			[726, 727, 728],
			[729, 730, 731],
			[732, 733, 734],
			[735, 736, 737],
			[738, 739, 740],
			[741, 742, 743],
			[744, 745, 746],
			[747, 748, 749],
			[750, 751, 752],
			[753, 754, 755],
			[756, 757, 758],
			[759, 760, 761],
			[762, 763, 764],
			[765, 766, 767],
			[768, 769, 770],
			[771, 772, 773],
			[774, 775, 776],
			[777, 778, 779],
			[780, 781, 782],
			[783, 784, 785],
			[786, 787, 788],
			[789, 790, 791],
			[792, 793, 794],
			[795, 796, 797],
			[798, 799, 800],
			[801, 802, 803],
			[804, 805, 806],
			[807, 808, 809],
			[810, 811, 812],
			[813, 814, 815]
		]
	);
}

invaders_v2_1b();
